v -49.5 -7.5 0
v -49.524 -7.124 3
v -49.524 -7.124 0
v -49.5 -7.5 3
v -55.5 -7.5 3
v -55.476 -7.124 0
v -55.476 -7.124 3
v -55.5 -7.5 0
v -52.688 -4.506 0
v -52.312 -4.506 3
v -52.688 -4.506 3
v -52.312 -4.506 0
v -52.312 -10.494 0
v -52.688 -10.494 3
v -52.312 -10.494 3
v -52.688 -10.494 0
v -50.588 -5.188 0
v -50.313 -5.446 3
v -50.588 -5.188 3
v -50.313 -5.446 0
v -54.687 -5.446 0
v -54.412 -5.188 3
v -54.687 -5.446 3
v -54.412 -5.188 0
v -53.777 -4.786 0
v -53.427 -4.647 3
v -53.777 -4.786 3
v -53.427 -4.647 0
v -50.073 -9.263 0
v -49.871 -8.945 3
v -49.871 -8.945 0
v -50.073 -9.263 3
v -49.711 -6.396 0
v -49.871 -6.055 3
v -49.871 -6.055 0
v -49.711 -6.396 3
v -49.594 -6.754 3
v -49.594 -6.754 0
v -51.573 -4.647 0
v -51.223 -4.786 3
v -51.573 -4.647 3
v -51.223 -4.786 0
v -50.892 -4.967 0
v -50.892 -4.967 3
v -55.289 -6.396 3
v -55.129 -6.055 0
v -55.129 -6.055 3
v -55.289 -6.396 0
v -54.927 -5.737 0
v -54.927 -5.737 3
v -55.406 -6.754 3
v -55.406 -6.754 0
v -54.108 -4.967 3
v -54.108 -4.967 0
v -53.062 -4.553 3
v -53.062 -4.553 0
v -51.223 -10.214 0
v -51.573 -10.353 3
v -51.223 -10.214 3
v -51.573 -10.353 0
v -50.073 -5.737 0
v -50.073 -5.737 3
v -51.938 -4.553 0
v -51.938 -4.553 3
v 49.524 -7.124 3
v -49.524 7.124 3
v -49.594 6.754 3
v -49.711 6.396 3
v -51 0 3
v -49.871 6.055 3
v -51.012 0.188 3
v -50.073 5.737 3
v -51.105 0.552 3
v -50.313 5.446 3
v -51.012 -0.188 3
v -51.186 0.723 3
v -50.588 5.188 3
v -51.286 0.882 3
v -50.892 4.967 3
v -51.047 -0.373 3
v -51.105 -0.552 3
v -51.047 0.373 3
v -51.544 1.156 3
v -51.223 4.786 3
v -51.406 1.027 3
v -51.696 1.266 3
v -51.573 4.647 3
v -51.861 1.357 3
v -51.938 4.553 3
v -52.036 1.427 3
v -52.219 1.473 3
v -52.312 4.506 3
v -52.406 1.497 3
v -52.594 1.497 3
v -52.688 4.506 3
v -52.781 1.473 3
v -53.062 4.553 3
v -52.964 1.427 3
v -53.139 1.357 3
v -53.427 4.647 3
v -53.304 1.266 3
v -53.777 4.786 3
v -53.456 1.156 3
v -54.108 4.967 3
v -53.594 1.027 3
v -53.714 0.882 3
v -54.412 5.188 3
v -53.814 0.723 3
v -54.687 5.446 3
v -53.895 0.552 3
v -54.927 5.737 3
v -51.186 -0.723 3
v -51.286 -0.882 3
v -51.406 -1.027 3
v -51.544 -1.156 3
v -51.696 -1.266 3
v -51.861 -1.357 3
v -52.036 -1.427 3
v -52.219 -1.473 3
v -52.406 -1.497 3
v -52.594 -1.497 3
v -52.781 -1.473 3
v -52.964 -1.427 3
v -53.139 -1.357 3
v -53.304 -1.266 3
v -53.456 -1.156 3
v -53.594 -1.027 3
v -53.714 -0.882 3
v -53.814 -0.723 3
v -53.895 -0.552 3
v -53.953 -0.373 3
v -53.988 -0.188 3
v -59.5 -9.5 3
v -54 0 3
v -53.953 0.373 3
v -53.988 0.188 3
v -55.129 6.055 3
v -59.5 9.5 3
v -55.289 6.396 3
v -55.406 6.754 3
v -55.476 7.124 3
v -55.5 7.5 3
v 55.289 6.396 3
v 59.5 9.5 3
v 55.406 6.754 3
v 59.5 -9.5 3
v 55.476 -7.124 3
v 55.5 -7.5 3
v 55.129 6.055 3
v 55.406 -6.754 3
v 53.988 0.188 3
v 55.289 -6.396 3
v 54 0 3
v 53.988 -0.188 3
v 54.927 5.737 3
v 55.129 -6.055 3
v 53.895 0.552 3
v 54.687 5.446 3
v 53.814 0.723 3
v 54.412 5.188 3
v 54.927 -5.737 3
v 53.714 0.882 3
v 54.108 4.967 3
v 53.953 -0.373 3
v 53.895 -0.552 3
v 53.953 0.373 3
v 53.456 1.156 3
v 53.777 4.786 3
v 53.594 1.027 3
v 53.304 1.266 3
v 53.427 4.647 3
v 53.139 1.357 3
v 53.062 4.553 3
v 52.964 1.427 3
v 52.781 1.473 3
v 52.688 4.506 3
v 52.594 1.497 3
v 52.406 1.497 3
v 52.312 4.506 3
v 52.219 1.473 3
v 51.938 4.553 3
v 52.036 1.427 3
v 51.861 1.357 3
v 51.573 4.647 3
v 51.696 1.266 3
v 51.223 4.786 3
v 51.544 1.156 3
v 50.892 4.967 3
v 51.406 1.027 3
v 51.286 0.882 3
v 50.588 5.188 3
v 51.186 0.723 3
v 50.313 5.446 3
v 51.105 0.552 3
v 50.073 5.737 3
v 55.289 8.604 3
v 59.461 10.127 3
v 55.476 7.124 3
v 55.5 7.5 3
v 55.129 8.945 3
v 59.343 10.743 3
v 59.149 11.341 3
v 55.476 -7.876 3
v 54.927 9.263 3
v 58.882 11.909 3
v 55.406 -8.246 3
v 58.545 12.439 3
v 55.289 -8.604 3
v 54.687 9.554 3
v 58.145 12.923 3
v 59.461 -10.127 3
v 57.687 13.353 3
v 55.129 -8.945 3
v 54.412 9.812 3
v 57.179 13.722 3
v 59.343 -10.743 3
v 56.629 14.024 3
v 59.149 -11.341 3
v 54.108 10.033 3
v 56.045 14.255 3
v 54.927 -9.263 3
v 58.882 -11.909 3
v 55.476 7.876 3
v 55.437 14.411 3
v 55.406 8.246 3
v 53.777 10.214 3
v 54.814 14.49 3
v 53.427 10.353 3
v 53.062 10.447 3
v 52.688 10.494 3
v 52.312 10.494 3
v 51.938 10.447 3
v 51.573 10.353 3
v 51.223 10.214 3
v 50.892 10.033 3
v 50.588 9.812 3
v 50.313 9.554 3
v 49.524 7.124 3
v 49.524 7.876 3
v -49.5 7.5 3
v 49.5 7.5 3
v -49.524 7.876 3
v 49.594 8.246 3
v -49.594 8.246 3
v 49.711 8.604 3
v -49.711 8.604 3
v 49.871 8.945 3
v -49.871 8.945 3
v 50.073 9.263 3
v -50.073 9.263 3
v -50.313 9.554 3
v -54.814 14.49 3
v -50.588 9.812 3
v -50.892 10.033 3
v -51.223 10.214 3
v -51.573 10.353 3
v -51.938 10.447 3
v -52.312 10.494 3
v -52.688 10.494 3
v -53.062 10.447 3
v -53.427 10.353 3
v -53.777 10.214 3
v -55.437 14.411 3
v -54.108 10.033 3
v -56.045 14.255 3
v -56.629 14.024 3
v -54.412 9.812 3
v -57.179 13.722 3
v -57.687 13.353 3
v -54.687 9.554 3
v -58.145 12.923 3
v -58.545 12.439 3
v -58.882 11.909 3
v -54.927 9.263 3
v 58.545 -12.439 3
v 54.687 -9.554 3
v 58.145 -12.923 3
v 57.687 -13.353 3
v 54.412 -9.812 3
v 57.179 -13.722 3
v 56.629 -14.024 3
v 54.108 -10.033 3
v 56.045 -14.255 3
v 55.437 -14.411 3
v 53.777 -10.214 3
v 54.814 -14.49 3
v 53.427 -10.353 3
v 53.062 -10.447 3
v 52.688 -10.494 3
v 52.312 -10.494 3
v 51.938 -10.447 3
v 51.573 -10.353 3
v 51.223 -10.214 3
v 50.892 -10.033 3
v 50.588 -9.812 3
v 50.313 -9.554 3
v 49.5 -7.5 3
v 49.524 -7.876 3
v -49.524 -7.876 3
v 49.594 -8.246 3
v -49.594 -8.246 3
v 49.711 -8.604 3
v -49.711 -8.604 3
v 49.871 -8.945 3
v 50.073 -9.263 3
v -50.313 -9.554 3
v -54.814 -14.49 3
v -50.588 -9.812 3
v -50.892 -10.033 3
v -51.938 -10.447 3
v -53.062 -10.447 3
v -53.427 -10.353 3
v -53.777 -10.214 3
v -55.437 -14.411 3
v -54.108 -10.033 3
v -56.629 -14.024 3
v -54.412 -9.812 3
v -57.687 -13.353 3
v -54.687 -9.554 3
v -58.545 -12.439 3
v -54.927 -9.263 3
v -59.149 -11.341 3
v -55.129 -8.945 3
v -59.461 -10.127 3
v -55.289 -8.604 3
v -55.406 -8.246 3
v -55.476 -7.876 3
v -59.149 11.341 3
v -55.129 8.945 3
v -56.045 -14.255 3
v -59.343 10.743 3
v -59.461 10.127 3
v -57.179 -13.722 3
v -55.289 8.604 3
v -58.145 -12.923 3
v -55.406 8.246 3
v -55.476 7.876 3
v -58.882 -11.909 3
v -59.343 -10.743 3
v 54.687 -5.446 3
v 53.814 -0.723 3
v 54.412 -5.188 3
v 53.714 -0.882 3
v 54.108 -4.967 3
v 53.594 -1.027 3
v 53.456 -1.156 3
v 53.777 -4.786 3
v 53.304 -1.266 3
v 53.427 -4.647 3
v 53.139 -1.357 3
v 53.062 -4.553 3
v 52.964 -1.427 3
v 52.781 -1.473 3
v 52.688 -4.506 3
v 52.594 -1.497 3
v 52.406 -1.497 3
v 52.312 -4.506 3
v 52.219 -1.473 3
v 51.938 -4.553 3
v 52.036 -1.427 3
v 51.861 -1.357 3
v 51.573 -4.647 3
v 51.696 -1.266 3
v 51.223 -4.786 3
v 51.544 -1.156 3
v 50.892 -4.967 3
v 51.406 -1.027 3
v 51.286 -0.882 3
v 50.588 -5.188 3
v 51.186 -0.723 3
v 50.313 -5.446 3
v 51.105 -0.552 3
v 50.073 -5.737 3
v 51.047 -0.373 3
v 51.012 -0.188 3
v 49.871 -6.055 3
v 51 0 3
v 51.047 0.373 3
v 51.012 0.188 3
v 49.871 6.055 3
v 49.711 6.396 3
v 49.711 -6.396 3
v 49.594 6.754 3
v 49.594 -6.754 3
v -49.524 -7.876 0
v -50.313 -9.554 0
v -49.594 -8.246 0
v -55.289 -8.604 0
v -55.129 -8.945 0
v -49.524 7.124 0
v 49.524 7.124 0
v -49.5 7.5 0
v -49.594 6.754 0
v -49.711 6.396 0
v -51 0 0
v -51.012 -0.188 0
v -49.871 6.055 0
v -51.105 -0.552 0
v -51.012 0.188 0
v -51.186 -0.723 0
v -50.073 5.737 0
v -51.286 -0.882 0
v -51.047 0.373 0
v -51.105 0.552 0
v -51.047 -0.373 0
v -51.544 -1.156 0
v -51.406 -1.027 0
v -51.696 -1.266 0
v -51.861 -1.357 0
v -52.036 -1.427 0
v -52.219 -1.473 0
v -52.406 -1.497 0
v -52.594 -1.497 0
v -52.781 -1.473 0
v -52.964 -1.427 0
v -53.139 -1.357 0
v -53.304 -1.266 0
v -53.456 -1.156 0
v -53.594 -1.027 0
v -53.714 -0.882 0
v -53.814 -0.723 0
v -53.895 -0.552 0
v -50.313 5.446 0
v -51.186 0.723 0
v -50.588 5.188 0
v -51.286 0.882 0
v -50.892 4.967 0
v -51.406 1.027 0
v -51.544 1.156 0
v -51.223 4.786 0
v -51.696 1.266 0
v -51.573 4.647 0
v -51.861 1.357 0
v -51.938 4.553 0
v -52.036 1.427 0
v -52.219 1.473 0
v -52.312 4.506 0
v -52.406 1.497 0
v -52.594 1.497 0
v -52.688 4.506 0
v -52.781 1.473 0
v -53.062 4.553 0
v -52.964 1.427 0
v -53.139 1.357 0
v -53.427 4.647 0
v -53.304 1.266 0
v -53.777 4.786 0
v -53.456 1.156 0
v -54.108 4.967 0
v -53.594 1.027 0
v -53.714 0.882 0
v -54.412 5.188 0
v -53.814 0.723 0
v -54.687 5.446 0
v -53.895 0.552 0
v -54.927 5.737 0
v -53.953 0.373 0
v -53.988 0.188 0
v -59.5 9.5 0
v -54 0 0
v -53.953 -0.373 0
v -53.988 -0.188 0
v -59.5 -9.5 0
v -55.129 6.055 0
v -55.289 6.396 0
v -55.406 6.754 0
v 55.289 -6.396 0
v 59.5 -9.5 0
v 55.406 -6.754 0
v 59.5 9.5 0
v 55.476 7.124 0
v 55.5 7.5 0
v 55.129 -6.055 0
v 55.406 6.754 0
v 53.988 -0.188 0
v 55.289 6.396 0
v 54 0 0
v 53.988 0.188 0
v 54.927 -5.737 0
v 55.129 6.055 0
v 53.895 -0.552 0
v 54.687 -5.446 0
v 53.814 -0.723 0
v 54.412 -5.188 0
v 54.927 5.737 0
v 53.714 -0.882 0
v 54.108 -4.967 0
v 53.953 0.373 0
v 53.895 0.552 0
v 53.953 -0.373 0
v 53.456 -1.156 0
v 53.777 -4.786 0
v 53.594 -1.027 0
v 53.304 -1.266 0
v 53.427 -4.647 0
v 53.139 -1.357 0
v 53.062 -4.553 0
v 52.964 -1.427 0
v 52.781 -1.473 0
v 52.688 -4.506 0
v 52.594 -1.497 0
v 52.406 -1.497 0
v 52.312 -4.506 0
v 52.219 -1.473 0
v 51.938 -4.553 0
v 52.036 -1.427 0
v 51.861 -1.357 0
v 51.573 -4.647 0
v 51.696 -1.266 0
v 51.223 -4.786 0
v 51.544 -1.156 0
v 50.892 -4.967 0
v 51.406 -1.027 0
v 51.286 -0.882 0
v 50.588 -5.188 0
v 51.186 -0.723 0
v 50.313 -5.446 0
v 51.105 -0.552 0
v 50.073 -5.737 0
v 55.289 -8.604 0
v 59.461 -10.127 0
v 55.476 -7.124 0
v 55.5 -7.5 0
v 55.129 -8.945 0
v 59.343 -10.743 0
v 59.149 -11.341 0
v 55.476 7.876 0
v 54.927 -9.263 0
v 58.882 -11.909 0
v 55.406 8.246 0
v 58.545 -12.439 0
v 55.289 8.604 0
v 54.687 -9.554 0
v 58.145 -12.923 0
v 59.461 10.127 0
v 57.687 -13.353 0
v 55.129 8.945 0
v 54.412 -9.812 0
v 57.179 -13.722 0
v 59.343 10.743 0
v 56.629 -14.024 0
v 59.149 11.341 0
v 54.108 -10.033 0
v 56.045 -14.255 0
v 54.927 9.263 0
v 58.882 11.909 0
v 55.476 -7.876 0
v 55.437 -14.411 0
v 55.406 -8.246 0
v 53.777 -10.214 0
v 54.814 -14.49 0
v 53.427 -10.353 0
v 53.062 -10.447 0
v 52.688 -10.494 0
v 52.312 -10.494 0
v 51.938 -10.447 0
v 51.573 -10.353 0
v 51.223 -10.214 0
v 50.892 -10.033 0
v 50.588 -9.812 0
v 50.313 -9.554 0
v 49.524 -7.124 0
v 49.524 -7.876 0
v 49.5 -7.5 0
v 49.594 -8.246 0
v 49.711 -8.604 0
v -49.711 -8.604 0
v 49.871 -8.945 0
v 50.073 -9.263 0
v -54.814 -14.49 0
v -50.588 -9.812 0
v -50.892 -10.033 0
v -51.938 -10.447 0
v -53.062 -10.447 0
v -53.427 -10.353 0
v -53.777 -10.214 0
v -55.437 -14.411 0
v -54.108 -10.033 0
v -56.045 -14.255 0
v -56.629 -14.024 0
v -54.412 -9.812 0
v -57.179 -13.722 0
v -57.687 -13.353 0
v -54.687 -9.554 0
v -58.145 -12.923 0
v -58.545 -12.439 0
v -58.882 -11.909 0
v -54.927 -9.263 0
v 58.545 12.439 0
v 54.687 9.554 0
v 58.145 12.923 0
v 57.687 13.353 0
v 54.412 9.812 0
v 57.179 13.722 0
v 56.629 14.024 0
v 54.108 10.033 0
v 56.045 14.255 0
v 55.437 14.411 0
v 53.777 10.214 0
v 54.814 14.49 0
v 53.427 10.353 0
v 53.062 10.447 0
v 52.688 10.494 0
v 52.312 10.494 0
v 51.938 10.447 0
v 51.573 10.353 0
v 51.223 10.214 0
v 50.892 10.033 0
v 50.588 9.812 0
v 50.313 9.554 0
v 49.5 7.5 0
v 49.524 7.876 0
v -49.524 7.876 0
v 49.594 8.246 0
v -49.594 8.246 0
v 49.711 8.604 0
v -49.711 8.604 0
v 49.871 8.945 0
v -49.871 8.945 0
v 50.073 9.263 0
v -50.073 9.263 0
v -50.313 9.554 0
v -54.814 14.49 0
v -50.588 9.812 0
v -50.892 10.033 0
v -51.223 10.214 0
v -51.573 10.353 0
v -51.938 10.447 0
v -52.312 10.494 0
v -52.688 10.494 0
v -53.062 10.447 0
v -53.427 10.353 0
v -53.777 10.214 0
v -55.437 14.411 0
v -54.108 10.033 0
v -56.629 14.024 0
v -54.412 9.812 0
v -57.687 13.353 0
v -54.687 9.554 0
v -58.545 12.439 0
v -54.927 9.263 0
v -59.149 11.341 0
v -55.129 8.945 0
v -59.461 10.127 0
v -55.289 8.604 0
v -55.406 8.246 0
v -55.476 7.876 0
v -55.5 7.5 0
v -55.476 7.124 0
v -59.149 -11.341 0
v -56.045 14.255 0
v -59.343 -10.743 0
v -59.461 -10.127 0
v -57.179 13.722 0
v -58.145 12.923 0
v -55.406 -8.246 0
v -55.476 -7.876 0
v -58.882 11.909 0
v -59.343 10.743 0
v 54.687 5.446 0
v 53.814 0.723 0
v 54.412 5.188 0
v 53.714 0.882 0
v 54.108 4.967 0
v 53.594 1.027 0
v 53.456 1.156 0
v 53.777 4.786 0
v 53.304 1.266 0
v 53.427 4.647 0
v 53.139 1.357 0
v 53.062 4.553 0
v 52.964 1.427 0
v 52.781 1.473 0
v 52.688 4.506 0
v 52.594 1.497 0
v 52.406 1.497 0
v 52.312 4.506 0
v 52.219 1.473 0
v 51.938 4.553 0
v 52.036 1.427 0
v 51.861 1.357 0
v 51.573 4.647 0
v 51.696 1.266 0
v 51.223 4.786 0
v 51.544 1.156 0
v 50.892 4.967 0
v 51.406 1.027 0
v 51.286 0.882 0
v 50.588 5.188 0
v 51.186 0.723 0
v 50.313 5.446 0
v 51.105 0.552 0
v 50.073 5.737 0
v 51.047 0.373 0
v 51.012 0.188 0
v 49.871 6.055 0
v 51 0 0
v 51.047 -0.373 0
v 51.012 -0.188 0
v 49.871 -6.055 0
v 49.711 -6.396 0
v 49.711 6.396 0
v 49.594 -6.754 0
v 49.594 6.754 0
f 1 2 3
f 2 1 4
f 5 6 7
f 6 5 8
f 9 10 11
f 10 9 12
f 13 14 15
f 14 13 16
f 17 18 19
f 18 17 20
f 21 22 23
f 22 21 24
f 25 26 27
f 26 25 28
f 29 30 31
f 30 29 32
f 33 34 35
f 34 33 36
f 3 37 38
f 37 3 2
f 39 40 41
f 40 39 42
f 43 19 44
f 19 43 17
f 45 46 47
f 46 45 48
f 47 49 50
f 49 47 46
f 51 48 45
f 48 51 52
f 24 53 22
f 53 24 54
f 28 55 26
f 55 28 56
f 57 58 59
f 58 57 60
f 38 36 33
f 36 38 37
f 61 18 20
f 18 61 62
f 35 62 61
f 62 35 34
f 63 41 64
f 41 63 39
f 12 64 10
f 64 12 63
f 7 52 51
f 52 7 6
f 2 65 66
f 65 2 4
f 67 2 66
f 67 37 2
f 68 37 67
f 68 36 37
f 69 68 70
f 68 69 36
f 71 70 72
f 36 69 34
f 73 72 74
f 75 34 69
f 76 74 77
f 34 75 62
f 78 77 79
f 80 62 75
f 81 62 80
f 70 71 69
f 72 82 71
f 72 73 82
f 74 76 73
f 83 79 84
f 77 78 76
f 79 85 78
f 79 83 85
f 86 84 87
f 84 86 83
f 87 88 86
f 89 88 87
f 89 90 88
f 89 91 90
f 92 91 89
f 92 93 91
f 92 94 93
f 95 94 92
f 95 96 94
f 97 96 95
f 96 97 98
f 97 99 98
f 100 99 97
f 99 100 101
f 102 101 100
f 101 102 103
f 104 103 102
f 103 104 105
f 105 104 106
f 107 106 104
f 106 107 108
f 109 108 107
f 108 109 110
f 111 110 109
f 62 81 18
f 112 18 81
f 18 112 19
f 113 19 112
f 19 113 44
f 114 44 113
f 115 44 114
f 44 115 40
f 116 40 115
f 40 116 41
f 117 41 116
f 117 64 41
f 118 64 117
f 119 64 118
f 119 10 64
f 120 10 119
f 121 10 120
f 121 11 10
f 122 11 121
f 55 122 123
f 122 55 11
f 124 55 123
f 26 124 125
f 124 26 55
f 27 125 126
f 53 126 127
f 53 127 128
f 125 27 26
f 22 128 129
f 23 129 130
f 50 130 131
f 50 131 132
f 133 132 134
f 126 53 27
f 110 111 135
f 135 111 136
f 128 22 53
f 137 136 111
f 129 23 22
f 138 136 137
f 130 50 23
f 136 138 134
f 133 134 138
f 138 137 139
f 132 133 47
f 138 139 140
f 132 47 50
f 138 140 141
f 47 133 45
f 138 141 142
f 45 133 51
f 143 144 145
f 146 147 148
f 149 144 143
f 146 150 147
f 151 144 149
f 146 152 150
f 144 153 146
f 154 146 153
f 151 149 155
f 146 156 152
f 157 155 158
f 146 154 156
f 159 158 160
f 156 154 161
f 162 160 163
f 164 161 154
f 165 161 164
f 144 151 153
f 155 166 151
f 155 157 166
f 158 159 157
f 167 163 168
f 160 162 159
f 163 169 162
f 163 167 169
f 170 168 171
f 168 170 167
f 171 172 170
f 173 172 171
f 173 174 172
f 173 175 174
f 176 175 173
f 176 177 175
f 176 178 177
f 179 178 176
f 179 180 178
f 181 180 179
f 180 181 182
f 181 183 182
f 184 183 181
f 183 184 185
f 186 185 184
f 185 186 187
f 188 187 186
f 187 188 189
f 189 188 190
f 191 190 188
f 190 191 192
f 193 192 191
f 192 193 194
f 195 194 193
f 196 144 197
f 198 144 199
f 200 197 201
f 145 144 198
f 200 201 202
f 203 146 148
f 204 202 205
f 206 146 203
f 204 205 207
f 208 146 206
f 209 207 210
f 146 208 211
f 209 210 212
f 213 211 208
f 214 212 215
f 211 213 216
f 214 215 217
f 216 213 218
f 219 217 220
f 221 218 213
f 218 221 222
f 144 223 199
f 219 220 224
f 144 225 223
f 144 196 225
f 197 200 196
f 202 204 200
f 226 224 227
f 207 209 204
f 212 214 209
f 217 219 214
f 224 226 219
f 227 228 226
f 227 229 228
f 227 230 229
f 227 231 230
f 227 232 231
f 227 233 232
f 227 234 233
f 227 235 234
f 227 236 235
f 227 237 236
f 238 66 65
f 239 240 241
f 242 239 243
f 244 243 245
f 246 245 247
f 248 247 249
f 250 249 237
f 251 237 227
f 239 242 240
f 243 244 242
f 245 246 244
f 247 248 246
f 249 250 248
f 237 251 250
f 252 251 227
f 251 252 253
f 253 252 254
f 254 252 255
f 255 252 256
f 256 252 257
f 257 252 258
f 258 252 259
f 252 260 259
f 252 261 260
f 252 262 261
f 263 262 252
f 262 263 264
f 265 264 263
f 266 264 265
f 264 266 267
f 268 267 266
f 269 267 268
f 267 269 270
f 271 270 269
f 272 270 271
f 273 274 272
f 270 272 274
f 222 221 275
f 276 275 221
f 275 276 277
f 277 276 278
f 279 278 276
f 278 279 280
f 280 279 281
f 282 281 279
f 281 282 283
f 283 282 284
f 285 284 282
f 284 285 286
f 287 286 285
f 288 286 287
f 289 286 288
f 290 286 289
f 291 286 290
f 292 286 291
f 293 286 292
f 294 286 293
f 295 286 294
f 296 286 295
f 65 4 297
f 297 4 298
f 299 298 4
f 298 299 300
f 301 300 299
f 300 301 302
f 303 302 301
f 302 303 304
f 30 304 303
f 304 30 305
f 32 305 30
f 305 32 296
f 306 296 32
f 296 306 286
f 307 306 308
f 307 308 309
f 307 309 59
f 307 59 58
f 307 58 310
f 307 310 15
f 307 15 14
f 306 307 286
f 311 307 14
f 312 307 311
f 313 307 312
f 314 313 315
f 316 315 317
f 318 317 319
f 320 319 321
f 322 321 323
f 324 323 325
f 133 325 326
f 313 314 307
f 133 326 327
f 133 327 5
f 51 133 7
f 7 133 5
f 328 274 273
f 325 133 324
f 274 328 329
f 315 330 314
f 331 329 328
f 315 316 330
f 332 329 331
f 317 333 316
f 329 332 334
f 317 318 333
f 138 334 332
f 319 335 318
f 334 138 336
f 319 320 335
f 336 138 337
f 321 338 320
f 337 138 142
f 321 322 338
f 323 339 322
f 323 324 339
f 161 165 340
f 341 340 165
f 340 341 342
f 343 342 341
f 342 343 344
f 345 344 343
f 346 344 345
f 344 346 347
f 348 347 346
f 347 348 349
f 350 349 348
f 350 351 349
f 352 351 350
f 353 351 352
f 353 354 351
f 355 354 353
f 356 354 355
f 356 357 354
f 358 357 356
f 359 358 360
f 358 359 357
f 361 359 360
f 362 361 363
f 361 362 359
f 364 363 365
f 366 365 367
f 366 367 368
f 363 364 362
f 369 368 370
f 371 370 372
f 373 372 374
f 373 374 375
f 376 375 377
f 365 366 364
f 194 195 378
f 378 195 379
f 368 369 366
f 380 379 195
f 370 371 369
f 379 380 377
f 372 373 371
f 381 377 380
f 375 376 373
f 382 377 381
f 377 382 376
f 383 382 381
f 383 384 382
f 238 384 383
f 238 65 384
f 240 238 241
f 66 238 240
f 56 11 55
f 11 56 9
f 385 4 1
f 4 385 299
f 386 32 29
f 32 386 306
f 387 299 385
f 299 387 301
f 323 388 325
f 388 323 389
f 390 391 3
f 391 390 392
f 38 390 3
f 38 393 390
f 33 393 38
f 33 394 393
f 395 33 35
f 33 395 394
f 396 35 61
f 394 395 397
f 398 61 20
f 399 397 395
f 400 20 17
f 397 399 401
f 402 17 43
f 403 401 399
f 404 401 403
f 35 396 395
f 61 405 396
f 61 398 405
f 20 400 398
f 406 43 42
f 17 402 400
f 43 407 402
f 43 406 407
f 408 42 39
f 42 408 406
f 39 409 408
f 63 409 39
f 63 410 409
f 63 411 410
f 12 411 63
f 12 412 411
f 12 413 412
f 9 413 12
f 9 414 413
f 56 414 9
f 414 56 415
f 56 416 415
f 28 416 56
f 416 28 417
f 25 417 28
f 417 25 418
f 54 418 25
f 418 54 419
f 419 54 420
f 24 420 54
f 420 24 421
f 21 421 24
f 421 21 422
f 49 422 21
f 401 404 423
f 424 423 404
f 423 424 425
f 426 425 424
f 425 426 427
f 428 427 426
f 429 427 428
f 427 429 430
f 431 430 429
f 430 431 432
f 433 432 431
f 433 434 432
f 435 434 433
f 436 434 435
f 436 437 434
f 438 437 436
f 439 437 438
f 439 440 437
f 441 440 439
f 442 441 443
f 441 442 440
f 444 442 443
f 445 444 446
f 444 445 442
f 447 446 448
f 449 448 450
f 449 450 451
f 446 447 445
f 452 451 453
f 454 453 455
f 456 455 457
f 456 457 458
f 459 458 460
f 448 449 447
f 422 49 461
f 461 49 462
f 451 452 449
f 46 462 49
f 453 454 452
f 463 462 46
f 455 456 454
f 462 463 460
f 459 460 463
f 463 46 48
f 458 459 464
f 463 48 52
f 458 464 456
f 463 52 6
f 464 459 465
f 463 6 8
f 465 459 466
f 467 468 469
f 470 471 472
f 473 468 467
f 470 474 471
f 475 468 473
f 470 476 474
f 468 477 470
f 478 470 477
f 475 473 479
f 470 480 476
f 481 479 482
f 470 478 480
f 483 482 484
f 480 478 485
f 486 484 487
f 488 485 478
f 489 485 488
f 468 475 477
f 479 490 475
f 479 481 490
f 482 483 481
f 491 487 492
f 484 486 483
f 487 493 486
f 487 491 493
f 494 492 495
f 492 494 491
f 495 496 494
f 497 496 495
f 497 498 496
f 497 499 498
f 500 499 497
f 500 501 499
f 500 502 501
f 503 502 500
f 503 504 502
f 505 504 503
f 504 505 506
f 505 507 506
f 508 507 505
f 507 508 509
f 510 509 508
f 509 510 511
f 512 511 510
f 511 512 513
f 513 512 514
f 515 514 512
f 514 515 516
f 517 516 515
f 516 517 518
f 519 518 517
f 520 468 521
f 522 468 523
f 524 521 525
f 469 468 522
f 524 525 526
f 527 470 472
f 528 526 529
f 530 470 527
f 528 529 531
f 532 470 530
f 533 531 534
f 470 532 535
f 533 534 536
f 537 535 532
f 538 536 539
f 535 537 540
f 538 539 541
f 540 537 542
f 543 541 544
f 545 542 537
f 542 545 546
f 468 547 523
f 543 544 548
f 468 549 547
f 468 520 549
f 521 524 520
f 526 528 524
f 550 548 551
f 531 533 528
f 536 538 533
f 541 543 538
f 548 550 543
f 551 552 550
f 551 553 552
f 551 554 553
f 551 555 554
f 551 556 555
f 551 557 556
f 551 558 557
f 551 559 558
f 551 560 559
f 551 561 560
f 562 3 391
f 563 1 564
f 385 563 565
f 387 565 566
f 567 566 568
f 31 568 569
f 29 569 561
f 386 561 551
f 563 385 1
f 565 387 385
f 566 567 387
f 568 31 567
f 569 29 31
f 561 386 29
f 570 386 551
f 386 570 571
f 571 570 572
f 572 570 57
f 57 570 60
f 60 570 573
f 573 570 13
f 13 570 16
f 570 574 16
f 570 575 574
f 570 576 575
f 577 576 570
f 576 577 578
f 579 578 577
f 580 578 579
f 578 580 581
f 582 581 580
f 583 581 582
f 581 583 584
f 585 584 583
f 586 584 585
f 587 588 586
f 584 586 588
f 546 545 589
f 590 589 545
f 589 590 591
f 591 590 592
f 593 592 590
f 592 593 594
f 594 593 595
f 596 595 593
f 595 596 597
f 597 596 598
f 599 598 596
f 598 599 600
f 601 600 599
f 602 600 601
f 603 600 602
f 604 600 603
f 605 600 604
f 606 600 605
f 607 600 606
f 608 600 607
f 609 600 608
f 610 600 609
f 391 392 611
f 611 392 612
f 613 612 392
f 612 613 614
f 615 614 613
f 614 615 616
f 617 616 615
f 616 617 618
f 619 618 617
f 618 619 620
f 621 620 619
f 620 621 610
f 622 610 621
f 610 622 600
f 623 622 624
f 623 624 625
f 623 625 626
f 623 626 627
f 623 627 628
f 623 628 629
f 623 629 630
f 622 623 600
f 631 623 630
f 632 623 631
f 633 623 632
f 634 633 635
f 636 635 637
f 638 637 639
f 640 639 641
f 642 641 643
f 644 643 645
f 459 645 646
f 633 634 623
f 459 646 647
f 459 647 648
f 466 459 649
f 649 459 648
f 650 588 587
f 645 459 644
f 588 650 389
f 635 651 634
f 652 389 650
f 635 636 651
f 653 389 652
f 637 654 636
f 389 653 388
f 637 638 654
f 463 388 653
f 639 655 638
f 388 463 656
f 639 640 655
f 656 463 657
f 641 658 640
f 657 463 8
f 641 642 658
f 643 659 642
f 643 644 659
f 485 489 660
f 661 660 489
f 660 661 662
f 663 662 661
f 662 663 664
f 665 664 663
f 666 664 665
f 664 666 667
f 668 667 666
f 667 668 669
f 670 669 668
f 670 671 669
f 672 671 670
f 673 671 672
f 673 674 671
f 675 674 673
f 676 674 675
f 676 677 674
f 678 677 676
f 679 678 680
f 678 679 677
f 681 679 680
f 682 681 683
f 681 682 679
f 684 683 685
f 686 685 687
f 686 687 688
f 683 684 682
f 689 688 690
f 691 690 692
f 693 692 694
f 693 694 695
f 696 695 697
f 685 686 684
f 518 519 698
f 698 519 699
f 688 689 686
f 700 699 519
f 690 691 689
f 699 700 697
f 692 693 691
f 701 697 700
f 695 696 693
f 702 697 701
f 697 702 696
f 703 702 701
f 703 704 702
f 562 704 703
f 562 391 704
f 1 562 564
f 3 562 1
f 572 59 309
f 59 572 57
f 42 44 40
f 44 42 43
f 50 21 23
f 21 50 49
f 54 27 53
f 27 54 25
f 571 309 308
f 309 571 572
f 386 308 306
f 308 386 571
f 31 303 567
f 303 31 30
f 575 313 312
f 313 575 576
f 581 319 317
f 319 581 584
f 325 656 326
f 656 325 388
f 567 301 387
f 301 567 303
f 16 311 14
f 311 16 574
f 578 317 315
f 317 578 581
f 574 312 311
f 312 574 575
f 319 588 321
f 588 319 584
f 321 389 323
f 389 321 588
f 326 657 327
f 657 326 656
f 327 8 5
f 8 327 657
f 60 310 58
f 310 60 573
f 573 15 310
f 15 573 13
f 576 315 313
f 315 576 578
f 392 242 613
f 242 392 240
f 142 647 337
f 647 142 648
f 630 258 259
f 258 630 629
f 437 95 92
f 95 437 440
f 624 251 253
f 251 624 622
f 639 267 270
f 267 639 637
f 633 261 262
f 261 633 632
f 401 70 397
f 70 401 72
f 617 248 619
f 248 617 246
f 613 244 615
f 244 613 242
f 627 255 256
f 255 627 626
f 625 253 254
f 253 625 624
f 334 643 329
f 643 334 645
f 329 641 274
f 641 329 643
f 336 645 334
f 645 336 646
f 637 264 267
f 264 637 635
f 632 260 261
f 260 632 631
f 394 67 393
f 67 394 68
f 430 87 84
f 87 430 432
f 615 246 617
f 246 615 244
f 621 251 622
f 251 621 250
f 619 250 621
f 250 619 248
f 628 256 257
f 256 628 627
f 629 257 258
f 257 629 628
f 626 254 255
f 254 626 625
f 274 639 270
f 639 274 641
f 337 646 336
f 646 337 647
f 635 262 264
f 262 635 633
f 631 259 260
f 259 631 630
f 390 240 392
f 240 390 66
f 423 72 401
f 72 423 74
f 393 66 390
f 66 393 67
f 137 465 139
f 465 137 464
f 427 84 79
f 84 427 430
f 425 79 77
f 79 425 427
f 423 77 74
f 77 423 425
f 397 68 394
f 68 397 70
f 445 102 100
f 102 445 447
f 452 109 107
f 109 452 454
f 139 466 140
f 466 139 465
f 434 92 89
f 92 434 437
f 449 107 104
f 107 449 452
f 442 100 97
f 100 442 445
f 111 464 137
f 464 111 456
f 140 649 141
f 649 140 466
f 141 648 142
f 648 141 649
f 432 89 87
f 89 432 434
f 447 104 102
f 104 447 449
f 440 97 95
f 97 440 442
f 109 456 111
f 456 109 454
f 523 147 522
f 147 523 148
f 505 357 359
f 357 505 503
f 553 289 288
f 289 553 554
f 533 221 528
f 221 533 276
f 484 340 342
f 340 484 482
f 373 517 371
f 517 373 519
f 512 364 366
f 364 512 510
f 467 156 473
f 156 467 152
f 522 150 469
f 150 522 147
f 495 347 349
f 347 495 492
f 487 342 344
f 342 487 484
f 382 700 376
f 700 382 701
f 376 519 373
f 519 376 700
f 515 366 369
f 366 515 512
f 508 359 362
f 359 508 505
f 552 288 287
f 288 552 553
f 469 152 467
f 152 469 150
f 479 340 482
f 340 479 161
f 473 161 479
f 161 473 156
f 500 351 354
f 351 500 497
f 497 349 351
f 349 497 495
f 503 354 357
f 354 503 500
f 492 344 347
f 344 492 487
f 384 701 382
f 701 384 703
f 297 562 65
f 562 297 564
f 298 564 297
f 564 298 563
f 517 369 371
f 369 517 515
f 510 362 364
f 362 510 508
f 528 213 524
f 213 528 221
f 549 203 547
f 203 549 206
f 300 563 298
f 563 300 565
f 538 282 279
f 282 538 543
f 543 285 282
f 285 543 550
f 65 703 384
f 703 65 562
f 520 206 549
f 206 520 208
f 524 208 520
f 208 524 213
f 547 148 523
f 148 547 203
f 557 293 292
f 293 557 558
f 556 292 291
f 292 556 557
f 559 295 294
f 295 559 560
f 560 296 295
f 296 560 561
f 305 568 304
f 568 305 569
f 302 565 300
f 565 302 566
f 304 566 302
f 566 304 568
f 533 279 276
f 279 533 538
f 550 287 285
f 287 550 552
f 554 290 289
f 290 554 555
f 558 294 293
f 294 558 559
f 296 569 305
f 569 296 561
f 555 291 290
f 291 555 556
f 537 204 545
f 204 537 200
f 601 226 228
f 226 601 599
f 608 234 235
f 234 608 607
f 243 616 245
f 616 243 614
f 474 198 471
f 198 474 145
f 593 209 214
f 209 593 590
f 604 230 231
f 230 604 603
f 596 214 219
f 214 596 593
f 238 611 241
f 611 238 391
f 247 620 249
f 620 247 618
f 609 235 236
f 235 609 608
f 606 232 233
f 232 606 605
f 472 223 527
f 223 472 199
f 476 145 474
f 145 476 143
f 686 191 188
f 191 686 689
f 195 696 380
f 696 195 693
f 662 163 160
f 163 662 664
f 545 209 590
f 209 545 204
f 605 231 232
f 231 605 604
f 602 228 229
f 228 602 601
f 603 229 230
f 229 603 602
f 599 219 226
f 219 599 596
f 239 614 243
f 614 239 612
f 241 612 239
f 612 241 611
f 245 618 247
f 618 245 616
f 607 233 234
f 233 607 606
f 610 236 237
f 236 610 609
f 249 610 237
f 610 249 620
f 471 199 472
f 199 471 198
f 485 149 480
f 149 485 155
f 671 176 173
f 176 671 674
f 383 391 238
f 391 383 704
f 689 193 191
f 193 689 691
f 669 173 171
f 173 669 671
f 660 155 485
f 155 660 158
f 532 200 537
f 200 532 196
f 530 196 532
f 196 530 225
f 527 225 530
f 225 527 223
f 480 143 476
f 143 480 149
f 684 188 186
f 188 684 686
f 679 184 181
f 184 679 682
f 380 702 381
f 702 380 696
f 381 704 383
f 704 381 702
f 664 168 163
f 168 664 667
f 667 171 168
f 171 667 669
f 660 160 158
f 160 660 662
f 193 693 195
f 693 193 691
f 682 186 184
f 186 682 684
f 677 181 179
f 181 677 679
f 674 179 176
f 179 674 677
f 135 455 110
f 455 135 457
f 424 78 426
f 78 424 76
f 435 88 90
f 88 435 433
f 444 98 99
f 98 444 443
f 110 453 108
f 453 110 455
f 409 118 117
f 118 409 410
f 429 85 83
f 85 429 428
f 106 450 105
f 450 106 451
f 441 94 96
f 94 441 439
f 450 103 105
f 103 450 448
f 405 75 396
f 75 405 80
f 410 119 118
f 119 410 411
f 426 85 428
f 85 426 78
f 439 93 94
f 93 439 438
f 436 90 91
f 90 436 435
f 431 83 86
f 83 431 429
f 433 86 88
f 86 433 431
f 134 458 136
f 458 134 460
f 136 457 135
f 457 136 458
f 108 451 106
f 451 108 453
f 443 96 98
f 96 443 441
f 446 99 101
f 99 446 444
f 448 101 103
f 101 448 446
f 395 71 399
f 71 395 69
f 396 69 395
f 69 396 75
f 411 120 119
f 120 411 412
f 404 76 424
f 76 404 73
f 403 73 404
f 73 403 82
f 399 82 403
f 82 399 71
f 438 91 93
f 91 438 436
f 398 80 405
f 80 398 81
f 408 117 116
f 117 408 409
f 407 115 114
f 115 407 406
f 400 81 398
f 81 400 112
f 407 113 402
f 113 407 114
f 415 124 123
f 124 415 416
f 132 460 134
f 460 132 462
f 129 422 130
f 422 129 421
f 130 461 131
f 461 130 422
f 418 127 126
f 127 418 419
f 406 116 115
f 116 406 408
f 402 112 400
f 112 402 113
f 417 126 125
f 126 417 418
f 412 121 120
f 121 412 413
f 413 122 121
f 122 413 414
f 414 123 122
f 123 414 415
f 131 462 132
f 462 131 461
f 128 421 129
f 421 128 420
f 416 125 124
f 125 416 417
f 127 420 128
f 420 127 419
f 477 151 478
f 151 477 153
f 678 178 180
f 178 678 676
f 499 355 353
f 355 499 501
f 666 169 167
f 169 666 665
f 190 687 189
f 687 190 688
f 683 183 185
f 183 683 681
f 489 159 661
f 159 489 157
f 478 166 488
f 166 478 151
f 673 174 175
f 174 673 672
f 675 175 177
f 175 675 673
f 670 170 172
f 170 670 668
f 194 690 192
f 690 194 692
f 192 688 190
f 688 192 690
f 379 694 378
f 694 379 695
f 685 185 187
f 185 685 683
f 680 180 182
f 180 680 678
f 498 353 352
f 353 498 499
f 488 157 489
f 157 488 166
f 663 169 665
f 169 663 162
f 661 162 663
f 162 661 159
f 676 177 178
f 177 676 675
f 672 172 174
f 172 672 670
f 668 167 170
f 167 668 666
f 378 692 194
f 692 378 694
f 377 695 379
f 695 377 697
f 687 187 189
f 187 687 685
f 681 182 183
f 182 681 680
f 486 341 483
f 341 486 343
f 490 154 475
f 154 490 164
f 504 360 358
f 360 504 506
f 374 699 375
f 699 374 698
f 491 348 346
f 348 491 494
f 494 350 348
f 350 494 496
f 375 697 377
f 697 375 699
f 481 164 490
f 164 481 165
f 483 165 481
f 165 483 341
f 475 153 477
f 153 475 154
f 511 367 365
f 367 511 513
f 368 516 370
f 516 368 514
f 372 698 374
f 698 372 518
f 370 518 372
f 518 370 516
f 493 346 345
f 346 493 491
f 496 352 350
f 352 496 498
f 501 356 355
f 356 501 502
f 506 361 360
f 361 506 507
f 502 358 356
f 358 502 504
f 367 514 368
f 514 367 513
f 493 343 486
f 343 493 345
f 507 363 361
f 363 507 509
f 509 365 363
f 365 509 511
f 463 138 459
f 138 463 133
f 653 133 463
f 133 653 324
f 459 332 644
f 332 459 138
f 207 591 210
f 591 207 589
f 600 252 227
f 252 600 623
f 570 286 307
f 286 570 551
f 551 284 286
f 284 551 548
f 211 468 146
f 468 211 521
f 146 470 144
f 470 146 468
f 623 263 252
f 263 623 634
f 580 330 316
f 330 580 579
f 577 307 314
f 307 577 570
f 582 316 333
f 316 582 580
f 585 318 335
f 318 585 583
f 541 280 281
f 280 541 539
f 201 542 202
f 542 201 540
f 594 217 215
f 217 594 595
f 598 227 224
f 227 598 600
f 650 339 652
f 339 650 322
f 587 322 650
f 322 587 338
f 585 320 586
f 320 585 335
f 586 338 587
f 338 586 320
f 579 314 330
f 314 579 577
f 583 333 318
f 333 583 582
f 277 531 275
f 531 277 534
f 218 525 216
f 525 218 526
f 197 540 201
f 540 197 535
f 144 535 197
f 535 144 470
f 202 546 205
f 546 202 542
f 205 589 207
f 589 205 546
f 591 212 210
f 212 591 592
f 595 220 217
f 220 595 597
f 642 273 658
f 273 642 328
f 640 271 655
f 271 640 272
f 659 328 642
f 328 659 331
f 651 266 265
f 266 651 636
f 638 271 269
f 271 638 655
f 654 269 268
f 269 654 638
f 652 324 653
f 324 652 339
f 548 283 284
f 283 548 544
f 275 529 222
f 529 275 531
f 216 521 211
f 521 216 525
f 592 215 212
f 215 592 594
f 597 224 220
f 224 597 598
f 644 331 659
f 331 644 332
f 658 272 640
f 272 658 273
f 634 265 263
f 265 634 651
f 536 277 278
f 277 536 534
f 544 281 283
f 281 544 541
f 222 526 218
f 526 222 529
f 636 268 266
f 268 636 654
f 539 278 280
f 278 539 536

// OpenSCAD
$fn = 50;


difference() {
	union() {
		hull() {
			translate(v = [-54.5000000000, 9.5000000000, 0]) {
				cylinder(h = 3, r = 5);
			}
			translate(v = [54.5000000000, 9.5000000000, 0]) {
				cylinder(h = 3, r = 5);
			}
			translate(v = [-54.5000000000, -9.5000000000, 0]) {
				cylinder(h = 3, r = 5);
			}
			translate(v = [54.5000000000, -9.5000000000, 0]) {
				cylinder(h = 3, r = 5);
			}
		}
	}
	union() {
		translate(v = [-52.5000000000, -7.5000000000, 0]) {
			cylinder(h = 3, r = 3.0000000000);
		}
		translate(v = [-52.5000000000, 7.5000000000, 0]) {
			cylinder(h = 3, r = 3.0000000000);
		}
		translate(v = [52.5000000000, -7.5000000000, 0]) {
			cylinder(h = 3, r = 3.0000000000);
		}
		translate(v = [52.5000000000, 7.5000000000, 0]) {
			cylinder(h = 3, r = 3.0000000000);
		}
		translate(v = [-52.5000000000, -7.5000000000, 0]) {
			cylinder(h = 3, r = 1.5000000000);
		}
		translate(v = [-52.5000000000, 0.0000000000, 0]) {
			cylinder(h = 3, r = 1.5000000000);
		}
		translate(v = [-52.5000000000, 7.5000000000, 0]) {
			cylinder(h = 3, r = 1.5000000000);
		}
		translate(v = [52.5000000000, -7.5000000000, 0]) {
			cylinder(h = 3, r = 1.5000000000);
		}
		translate(v = [52.5000000000, 0.0000000000, 0]) {
			cylinder(h = 3, r = 1.5000000000);
		}
		translate(v = [52.5000000000, 7.5000000000, 0]) {
			cylinder(h = 3, r = 1.5000000000);
		}
		translate(v = [-52.5000000000, -7.5000000000, 0]) {
			cylinder(h = 3, r = 1.5000000000);
		}
		translate(v = [-52.5000000000, 0.0000000000, 0]) {
			cylinder(h = 3, r = 1.5000000000);
		}
		translate(v = [-52.5000000000, 7.5000000000, 0]) {
			cylinder(h = 3, r = 1.5000000000);
		}
		translate(v = [52.5000000000, -7.5000000000, 0]) {
			cylinder(h = 3, r = 1.5000000000);
		}
		translate(v = [52.5000000000, 0.0000000000, 0]) {
			cylinder(h = 3, r = 1.5000000000);
		}
		translate(v = [52.5000000000, 7.5000000000, 0]) {
			cylinder(h = 3, r = 1.5000000000);
		}
		translate(v = [-52.5000000000, -7.5000000000, 0]) {
			cylinder(h = 3, r = 1.5000000000);
		}
		translate(v = [-52.5000000000, 0.0000000000, 0]) {
			cylinder(h = 3, r = 1.5000000000);
		}
		translate(v = [-52.5000000000, 7.5000000000, 0]) {
			cylinder(h = 3, r = 1.5000000000);
		}
		translate(v = [52.5000000000, -7.5000000000, 0]) {
			cylinder(h = 3, r = 1.5000000000);
		}
		translate(v = [52.5000000000, 0.0000000000, 0]) {
			cylinder(h = 3, r = 1.5000000000);
		}
		translate(v = [52.5000000000, 7.5000000000, 0]) {
			cylinder(h = 3, r = 1.5000000000);
		}
	}
}
